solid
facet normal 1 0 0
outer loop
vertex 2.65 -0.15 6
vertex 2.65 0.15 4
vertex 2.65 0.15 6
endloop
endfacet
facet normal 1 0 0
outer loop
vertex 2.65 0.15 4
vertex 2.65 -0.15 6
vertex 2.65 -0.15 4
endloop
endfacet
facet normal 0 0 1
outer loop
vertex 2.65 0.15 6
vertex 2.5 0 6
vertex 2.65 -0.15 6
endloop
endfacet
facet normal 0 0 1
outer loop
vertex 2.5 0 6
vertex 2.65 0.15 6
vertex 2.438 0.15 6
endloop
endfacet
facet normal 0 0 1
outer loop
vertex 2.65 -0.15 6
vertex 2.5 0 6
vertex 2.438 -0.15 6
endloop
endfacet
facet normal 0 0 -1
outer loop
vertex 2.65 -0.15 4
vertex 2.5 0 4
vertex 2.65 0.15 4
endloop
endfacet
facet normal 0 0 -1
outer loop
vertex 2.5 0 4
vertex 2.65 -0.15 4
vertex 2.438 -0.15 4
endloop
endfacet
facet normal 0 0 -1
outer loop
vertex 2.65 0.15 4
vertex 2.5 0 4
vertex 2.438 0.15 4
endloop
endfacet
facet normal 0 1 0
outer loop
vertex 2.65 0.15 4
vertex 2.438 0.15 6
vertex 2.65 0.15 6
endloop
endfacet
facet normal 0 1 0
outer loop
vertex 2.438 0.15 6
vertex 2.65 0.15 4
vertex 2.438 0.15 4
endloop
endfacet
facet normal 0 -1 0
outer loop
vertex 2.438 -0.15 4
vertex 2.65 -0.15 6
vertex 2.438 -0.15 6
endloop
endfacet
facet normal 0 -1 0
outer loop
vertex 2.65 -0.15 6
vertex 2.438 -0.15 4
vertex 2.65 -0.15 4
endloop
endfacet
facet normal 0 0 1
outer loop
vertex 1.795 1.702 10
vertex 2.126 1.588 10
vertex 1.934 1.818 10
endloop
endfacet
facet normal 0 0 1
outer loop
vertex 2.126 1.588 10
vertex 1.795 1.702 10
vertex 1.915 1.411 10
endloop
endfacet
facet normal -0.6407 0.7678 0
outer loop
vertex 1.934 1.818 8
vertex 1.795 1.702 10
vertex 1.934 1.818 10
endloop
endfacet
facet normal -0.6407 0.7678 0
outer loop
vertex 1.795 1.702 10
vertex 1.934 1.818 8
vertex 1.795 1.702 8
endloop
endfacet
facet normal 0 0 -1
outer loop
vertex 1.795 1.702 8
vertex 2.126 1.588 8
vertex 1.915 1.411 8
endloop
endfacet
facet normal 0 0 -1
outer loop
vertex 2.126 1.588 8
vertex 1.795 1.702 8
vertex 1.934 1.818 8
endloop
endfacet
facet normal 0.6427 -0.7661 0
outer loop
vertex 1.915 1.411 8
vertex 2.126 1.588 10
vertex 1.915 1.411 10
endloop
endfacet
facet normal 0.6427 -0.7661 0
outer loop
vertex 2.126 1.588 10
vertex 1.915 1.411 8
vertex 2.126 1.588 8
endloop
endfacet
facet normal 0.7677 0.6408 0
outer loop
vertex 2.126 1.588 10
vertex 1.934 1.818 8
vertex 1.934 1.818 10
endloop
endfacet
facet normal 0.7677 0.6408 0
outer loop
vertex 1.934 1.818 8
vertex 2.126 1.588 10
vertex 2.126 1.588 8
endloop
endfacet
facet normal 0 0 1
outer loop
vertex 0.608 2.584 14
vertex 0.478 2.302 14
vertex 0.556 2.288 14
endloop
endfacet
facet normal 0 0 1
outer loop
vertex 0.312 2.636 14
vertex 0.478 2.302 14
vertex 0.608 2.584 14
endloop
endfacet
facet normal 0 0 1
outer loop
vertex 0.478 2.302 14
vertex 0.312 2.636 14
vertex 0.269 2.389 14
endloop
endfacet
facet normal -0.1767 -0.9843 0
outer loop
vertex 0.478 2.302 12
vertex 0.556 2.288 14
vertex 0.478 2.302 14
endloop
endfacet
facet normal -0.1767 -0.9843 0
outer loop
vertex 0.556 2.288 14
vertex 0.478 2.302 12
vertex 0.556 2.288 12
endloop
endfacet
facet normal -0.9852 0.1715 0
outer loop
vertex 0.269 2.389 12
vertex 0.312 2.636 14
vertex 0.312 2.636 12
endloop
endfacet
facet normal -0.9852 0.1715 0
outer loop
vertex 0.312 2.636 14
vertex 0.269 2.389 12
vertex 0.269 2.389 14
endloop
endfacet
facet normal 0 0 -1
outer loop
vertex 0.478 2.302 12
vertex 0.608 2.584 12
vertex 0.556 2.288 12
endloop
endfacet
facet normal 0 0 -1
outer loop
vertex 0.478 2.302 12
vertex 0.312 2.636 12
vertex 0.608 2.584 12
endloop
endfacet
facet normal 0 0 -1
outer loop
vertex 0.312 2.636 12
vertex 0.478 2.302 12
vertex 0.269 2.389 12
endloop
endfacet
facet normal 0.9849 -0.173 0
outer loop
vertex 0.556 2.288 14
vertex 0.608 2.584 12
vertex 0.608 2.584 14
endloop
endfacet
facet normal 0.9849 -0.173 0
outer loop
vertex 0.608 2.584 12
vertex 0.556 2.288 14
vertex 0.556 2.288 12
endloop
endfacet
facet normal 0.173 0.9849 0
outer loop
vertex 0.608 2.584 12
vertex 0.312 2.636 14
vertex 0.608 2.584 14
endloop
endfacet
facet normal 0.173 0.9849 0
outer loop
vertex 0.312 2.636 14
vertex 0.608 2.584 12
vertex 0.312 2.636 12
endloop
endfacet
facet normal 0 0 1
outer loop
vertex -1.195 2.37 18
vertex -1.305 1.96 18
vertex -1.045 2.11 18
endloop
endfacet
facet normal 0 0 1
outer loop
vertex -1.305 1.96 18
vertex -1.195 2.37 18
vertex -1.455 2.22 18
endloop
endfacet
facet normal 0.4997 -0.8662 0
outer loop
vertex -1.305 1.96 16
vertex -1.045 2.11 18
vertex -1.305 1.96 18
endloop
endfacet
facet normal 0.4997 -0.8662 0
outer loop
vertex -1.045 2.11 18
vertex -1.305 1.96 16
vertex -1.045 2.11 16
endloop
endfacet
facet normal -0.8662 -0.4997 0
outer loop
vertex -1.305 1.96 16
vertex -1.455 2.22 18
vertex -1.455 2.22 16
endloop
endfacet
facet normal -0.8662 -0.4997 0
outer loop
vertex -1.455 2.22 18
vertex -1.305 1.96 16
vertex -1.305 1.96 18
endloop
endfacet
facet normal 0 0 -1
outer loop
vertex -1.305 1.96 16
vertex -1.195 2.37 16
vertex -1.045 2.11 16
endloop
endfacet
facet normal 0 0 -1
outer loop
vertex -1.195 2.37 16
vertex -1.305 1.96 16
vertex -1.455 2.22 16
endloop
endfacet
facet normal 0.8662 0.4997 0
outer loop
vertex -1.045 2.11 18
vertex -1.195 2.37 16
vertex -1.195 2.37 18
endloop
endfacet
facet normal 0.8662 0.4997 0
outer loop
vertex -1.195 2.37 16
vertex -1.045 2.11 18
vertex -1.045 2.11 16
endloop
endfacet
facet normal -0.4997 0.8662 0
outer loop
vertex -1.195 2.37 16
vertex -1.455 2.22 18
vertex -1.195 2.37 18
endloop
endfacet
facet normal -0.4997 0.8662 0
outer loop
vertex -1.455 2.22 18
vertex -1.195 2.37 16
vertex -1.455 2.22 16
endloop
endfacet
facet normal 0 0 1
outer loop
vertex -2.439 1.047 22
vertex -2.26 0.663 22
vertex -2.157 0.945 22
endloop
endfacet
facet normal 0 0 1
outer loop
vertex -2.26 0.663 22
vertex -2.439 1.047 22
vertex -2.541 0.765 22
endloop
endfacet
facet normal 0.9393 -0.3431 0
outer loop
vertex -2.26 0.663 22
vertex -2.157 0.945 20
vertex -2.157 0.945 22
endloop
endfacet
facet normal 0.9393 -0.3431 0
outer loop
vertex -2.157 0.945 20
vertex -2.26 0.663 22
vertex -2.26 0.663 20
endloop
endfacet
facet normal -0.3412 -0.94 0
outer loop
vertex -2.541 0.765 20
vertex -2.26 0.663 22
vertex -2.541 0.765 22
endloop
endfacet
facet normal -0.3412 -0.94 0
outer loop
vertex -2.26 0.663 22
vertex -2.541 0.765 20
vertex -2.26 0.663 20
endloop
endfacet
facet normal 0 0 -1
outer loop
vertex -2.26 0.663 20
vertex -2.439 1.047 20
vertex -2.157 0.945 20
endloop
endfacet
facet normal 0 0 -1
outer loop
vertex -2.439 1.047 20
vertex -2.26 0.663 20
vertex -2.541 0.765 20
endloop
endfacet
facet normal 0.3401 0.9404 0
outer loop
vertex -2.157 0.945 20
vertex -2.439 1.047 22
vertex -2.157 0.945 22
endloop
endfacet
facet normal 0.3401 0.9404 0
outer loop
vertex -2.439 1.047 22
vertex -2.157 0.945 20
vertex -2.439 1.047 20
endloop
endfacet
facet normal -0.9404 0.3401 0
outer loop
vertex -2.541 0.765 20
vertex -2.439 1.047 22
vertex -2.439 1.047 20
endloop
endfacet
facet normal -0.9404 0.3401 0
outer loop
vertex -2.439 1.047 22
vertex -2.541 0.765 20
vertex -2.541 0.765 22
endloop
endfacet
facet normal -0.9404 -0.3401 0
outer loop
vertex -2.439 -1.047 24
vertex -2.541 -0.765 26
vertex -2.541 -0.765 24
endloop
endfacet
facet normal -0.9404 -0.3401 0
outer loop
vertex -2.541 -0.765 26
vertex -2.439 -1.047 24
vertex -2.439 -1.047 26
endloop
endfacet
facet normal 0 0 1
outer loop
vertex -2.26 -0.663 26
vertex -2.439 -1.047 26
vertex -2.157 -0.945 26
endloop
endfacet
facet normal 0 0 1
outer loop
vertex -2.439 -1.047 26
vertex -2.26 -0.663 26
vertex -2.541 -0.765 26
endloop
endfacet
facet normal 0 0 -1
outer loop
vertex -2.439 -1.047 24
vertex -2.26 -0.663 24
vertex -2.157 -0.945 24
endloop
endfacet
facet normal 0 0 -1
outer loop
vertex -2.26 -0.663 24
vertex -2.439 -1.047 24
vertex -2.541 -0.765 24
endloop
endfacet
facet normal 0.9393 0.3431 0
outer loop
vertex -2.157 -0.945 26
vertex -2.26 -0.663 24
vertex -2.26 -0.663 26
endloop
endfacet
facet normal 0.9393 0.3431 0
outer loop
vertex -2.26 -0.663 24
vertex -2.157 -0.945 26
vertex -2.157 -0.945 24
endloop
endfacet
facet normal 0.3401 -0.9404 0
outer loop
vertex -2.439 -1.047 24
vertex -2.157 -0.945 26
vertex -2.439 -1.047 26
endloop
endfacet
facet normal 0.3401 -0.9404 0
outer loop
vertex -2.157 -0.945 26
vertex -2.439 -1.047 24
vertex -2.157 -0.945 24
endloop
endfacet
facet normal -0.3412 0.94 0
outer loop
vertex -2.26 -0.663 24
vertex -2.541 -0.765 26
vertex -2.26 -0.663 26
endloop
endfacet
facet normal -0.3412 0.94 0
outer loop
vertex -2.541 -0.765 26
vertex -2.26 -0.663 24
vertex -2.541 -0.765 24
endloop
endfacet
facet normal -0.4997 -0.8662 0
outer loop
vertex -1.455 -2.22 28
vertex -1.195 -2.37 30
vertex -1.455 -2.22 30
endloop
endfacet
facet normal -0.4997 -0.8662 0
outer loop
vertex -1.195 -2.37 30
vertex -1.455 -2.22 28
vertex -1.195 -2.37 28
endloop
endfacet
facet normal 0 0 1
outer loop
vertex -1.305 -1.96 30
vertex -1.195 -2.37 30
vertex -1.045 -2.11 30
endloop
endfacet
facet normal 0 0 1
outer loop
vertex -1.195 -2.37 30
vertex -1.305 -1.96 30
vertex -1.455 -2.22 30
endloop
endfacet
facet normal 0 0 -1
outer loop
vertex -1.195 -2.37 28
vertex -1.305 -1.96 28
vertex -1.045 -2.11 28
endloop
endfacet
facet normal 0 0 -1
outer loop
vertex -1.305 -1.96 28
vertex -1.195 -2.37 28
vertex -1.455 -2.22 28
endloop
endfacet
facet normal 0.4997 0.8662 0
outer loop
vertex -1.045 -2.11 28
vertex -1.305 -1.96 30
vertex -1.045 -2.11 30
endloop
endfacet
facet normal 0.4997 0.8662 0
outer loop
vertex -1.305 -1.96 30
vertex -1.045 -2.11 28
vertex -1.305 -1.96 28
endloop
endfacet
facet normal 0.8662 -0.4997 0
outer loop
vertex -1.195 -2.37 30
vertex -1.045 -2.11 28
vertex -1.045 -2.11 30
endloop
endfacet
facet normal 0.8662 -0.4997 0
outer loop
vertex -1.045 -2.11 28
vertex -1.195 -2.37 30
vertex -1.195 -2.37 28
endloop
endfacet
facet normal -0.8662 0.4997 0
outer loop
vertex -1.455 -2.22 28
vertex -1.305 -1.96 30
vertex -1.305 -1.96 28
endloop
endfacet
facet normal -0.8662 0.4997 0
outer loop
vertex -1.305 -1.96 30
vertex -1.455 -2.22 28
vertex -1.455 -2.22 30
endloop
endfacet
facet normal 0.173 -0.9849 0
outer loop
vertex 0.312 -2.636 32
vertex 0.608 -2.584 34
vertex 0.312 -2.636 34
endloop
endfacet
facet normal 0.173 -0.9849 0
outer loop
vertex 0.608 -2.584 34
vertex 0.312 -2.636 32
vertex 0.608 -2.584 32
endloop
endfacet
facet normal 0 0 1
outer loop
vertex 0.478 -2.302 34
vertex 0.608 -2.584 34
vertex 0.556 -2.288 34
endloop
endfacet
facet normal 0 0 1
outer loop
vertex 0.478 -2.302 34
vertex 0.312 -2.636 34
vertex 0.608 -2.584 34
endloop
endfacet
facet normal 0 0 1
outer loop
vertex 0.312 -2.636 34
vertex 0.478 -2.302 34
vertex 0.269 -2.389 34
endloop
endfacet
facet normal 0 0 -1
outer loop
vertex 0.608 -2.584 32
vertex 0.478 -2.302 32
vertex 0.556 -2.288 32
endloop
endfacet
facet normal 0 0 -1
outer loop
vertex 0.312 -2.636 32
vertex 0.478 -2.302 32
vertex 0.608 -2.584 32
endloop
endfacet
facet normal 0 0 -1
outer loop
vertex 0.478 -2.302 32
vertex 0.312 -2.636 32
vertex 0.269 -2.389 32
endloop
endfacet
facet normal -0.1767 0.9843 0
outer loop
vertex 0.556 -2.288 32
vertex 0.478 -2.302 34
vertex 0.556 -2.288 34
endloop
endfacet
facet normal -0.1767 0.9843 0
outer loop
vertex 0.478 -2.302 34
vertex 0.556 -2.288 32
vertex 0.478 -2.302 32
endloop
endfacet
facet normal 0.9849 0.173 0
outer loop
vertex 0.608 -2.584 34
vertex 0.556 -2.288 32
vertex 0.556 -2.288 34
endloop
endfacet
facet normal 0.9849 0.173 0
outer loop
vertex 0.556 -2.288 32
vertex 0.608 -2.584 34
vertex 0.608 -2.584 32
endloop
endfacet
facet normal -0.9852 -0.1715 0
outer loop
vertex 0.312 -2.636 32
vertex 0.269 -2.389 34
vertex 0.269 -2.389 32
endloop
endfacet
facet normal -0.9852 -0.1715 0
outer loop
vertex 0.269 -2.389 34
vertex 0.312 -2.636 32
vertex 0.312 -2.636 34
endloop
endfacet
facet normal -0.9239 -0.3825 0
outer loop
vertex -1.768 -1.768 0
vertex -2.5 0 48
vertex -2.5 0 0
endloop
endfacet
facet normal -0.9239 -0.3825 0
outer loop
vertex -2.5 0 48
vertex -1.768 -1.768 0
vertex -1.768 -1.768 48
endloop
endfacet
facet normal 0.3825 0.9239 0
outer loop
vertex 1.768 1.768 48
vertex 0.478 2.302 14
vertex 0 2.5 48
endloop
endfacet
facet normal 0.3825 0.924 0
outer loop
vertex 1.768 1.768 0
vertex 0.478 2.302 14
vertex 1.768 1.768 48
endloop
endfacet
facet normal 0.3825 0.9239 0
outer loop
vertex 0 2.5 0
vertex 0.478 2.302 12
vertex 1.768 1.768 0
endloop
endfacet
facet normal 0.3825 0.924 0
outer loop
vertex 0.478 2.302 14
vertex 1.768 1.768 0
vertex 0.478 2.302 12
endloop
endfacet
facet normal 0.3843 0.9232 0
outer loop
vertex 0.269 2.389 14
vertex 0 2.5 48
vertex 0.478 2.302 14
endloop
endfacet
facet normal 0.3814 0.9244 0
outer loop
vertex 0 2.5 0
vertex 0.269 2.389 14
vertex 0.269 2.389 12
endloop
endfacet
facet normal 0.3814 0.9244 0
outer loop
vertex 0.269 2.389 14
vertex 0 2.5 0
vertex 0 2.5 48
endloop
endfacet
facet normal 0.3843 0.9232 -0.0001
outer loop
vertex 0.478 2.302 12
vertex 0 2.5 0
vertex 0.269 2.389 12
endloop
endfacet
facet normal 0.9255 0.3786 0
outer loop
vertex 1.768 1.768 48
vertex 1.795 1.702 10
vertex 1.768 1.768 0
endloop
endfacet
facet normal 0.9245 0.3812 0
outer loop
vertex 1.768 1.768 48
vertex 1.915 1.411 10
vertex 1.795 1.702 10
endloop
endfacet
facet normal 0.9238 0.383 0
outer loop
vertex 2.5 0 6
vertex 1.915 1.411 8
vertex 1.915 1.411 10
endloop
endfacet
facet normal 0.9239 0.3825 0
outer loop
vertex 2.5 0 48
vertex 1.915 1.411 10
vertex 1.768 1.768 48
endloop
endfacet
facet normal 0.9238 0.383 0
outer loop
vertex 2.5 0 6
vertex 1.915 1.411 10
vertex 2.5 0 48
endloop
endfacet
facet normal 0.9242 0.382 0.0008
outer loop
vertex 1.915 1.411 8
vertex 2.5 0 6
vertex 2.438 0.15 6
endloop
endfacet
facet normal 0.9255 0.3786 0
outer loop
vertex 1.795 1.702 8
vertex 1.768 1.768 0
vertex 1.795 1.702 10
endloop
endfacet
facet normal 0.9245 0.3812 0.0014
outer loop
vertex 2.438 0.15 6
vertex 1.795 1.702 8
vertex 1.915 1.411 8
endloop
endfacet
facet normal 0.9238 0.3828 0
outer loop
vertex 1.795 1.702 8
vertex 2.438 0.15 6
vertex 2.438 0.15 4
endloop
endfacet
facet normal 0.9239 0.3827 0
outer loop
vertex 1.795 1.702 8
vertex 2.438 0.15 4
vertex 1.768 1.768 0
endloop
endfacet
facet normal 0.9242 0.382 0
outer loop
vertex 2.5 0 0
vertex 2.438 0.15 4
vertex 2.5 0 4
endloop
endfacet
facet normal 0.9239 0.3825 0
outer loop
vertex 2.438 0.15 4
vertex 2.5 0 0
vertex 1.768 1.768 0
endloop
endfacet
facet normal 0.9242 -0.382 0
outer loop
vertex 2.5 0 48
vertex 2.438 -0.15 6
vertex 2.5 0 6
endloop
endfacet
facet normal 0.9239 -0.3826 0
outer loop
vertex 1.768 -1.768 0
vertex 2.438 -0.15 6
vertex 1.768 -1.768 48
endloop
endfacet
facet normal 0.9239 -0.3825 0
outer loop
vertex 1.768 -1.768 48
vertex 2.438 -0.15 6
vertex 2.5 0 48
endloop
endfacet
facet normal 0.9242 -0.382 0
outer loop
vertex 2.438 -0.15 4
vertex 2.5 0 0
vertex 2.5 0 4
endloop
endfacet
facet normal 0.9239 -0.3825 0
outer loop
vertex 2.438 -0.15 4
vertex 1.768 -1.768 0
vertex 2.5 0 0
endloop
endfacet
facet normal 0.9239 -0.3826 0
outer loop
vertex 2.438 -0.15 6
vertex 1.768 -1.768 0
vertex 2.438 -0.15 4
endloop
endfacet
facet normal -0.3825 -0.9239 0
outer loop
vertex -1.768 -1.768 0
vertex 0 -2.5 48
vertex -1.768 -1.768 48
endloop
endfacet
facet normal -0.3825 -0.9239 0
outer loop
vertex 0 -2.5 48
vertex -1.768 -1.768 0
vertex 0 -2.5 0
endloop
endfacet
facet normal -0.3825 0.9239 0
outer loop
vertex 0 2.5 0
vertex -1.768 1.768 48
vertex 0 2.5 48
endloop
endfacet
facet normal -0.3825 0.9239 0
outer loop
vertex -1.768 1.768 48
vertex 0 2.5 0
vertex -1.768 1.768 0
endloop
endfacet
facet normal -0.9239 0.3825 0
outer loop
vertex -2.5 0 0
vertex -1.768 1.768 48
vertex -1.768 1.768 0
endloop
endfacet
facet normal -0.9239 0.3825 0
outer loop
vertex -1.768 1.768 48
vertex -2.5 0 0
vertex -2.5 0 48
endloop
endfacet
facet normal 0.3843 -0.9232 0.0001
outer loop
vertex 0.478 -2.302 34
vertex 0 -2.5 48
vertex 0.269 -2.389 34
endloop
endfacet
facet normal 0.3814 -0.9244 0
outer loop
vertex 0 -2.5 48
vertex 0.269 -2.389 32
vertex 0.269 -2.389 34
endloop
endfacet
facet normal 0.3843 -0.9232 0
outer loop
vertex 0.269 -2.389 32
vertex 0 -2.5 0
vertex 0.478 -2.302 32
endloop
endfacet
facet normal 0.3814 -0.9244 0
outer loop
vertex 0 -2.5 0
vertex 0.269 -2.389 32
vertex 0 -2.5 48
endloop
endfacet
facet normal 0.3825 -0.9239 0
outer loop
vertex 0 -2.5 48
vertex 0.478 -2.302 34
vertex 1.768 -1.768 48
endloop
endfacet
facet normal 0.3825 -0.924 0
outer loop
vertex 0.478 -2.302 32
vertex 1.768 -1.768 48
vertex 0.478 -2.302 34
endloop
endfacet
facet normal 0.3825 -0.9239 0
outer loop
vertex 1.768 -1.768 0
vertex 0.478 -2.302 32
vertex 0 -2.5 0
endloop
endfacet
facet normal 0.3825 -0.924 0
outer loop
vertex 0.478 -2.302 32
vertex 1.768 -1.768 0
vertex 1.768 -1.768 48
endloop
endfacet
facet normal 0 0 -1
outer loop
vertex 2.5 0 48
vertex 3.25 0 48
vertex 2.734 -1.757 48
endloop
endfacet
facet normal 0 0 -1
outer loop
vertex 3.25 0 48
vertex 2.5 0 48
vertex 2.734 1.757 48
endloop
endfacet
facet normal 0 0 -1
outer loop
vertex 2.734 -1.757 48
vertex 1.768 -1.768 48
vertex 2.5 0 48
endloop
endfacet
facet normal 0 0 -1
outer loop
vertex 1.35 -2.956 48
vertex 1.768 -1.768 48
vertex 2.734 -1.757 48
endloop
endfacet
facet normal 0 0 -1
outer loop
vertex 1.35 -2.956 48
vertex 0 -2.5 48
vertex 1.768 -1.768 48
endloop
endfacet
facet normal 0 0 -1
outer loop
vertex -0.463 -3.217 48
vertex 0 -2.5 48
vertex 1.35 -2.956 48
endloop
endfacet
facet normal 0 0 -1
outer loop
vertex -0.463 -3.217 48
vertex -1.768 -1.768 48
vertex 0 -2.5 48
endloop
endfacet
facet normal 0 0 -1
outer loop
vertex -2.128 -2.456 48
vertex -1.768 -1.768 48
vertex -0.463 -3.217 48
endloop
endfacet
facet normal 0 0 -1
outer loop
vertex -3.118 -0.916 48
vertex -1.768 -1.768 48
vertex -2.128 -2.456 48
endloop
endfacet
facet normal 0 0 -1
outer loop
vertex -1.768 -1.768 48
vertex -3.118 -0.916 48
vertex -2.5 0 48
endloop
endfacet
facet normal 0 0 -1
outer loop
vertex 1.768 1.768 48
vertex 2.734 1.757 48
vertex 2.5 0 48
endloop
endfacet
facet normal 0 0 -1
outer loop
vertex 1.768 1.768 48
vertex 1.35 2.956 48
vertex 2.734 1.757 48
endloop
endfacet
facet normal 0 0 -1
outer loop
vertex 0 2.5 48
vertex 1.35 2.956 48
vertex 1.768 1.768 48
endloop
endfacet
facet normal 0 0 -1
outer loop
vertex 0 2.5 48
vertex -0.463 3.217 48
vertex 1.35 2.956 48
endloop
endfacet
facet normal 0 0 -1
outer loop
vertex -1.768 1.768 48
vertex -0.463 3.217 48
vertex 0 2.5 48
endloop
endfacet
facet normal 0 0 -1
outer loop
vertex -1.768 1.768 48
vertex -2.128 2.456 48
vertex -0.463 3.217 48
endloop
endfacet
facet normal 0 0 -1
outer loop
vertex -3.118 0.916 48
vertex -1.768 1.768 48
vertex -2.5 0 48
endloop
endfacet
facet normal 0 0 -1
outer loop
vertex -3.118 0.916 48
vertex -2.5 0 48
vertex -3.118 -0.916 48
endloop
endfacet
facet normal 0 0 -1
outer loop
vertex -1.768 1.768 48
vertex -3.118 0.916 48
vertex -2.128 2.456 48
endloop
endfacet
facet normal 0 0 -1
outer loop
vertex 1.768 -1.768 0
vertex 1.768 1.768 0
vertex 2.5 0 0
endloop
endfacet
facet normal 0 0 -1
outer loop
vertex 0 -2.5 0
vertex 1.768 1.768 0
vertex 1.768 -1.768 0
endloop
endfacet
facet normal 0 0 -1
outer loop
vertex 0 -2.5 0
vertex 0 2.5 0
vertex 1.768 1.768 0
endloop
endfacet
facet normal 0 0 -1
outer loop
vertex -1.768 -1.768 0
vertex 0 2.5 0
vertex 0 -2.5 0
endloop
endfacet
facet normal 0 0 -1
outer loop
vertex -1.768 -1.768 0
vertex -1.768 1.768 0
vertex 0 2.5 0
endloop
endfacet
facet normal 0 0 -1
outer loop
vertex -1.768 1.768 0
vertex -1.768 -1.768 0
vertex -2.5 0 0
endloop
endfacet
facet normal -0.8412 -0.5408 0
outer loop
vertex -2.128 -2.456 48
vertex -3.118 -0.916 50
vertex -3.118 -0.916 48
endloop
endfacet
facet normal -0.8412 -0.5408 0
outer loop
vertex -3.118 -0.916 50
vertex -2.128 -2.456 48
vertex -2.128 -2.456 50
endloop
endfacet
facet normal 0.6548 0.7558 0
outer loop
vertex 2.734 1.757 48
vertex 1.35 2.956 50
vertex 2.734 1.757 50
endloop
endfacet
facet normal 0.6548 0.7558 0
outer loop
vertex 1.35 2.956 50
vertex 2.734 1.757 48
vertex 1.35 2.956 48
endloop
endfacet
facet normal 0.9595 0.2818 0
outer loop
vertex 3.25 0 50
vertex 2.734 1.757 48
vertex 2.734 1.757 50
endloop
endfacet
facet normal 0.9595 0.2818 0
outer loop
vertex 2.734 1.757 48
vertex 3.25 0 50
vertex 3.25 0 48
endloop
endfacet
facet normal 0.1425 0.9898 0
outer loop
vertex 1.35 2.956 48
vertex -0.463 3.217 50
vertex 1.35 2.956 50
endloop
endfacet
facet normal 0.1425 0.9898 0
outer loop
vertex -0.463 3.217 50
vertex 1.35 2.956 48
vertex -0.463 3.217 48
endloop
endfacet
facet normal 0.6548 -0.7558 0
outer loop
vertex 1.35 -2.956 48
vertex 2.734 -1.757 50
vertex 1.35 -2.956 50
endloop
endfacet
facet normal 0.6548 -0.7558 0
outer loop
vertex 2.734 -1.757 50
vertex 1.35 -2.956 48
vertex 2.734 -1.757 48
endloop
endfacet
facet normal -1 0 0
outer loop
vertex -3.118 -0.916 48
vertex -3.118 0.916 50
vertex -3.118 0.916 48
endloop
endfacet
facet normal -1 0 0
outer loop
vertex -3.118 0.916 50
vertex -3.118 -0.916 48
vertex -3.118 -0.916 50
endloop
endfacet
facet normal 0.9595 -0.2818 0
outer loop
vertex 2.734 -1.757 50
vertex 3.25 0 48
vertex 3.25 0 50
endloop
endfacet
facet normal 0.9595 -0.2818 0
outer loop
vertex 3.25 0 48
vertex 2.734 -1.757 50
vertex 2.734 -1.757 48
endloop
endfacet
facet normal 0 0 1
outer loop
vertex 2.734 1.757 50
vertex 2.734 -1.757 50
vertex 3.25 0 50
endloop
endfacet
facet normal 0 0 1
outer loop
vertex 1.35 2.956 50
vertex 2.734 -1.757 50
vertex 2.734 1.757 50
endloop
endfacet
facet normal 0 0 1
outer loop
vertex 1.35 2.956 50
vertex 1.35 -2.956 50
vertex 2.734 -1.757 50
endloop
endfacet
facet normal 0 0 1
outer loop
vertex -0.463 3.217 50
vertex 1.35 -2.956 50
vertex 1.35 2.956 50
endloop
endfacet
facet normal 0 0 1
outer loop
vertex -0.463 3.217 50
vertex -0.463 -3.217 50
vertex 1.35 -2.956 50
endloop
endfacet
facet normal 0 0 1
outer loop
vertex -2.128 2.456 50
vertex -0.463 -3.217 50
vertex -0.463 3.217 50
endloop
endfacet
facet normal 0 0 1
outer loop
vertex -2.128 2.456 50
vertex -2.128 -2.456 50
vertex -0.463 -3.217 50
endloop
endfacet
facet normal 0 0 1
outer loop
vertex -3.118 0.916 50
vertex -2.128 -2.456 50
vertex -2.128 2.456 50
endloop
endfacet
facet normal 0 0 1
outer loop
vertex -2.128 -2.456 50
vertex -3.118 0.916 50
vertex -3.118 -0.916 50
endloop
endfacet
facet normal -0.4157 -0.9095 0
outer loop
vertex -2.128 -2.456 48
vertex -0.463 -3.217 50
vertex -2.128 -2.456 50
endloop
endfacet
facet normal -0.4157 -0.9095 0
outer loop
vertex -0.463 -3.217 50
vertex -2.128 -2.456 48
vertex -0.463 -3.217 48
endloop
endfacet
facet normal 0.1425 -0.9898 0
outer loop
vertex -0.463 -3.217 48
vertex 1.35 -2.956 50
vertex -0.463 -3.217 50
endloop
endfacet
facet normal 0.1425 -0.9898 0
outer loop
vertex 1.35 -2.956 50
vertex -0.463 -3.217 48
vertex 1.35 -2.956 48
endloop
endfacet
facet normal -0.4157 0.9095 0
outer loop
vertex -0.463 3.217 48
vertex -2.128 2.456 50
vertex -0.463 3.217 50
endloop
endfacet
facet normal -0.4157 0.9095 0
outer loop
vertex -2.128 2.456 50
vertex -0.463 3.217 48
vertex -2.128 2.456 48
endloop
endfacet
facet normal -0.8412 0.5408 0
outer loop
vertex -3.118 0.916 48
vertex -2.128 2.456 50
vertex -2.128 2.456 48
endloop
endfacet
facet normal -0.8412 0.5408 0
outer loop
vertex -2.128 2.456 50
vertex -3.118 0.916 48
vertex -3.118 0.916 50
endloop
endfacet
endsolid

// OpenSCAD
// Parameters for the bolt
bolt_length = 50; // Length of the bolt
bolt_diameter = 5; // Diameter of the bolt
head_diameter = 6.5; // Adjusted diameter of the flat head to match the original model
head_thickness = 2; // Thickness of the flat head
thread_length = 30; // Adjusted length of the threaded section to match the original model
thread_width = 0.3; // Reduced prominence of the threading pattern
thread_spacing = 4; // Increased spacing between threads for a less pronounced pattern

module bolt() {
    // Bolt body
    cylinder(h = bolt_length - head_thickness, d = bolt_diameter, center = false);
    
    // Flat head
    translate([0, 0, bolt_length - head_thickness])
        cylinder(h = head_thickness, d = head_diameter, center = false);
    
    // Threading (visual representation)
    translate([0, 0, 5]) // Adjusted threading position to start slightly higher
        for (i = [0:thread_spacing:thread_length]) {
            rotate([0, 0, i * 10])
                translate([bolt_diameter / 2, 0, i])
                    cube([thread_width, thread_width, 2], center = true);
        }
}

// Render the bolt
bolt();
